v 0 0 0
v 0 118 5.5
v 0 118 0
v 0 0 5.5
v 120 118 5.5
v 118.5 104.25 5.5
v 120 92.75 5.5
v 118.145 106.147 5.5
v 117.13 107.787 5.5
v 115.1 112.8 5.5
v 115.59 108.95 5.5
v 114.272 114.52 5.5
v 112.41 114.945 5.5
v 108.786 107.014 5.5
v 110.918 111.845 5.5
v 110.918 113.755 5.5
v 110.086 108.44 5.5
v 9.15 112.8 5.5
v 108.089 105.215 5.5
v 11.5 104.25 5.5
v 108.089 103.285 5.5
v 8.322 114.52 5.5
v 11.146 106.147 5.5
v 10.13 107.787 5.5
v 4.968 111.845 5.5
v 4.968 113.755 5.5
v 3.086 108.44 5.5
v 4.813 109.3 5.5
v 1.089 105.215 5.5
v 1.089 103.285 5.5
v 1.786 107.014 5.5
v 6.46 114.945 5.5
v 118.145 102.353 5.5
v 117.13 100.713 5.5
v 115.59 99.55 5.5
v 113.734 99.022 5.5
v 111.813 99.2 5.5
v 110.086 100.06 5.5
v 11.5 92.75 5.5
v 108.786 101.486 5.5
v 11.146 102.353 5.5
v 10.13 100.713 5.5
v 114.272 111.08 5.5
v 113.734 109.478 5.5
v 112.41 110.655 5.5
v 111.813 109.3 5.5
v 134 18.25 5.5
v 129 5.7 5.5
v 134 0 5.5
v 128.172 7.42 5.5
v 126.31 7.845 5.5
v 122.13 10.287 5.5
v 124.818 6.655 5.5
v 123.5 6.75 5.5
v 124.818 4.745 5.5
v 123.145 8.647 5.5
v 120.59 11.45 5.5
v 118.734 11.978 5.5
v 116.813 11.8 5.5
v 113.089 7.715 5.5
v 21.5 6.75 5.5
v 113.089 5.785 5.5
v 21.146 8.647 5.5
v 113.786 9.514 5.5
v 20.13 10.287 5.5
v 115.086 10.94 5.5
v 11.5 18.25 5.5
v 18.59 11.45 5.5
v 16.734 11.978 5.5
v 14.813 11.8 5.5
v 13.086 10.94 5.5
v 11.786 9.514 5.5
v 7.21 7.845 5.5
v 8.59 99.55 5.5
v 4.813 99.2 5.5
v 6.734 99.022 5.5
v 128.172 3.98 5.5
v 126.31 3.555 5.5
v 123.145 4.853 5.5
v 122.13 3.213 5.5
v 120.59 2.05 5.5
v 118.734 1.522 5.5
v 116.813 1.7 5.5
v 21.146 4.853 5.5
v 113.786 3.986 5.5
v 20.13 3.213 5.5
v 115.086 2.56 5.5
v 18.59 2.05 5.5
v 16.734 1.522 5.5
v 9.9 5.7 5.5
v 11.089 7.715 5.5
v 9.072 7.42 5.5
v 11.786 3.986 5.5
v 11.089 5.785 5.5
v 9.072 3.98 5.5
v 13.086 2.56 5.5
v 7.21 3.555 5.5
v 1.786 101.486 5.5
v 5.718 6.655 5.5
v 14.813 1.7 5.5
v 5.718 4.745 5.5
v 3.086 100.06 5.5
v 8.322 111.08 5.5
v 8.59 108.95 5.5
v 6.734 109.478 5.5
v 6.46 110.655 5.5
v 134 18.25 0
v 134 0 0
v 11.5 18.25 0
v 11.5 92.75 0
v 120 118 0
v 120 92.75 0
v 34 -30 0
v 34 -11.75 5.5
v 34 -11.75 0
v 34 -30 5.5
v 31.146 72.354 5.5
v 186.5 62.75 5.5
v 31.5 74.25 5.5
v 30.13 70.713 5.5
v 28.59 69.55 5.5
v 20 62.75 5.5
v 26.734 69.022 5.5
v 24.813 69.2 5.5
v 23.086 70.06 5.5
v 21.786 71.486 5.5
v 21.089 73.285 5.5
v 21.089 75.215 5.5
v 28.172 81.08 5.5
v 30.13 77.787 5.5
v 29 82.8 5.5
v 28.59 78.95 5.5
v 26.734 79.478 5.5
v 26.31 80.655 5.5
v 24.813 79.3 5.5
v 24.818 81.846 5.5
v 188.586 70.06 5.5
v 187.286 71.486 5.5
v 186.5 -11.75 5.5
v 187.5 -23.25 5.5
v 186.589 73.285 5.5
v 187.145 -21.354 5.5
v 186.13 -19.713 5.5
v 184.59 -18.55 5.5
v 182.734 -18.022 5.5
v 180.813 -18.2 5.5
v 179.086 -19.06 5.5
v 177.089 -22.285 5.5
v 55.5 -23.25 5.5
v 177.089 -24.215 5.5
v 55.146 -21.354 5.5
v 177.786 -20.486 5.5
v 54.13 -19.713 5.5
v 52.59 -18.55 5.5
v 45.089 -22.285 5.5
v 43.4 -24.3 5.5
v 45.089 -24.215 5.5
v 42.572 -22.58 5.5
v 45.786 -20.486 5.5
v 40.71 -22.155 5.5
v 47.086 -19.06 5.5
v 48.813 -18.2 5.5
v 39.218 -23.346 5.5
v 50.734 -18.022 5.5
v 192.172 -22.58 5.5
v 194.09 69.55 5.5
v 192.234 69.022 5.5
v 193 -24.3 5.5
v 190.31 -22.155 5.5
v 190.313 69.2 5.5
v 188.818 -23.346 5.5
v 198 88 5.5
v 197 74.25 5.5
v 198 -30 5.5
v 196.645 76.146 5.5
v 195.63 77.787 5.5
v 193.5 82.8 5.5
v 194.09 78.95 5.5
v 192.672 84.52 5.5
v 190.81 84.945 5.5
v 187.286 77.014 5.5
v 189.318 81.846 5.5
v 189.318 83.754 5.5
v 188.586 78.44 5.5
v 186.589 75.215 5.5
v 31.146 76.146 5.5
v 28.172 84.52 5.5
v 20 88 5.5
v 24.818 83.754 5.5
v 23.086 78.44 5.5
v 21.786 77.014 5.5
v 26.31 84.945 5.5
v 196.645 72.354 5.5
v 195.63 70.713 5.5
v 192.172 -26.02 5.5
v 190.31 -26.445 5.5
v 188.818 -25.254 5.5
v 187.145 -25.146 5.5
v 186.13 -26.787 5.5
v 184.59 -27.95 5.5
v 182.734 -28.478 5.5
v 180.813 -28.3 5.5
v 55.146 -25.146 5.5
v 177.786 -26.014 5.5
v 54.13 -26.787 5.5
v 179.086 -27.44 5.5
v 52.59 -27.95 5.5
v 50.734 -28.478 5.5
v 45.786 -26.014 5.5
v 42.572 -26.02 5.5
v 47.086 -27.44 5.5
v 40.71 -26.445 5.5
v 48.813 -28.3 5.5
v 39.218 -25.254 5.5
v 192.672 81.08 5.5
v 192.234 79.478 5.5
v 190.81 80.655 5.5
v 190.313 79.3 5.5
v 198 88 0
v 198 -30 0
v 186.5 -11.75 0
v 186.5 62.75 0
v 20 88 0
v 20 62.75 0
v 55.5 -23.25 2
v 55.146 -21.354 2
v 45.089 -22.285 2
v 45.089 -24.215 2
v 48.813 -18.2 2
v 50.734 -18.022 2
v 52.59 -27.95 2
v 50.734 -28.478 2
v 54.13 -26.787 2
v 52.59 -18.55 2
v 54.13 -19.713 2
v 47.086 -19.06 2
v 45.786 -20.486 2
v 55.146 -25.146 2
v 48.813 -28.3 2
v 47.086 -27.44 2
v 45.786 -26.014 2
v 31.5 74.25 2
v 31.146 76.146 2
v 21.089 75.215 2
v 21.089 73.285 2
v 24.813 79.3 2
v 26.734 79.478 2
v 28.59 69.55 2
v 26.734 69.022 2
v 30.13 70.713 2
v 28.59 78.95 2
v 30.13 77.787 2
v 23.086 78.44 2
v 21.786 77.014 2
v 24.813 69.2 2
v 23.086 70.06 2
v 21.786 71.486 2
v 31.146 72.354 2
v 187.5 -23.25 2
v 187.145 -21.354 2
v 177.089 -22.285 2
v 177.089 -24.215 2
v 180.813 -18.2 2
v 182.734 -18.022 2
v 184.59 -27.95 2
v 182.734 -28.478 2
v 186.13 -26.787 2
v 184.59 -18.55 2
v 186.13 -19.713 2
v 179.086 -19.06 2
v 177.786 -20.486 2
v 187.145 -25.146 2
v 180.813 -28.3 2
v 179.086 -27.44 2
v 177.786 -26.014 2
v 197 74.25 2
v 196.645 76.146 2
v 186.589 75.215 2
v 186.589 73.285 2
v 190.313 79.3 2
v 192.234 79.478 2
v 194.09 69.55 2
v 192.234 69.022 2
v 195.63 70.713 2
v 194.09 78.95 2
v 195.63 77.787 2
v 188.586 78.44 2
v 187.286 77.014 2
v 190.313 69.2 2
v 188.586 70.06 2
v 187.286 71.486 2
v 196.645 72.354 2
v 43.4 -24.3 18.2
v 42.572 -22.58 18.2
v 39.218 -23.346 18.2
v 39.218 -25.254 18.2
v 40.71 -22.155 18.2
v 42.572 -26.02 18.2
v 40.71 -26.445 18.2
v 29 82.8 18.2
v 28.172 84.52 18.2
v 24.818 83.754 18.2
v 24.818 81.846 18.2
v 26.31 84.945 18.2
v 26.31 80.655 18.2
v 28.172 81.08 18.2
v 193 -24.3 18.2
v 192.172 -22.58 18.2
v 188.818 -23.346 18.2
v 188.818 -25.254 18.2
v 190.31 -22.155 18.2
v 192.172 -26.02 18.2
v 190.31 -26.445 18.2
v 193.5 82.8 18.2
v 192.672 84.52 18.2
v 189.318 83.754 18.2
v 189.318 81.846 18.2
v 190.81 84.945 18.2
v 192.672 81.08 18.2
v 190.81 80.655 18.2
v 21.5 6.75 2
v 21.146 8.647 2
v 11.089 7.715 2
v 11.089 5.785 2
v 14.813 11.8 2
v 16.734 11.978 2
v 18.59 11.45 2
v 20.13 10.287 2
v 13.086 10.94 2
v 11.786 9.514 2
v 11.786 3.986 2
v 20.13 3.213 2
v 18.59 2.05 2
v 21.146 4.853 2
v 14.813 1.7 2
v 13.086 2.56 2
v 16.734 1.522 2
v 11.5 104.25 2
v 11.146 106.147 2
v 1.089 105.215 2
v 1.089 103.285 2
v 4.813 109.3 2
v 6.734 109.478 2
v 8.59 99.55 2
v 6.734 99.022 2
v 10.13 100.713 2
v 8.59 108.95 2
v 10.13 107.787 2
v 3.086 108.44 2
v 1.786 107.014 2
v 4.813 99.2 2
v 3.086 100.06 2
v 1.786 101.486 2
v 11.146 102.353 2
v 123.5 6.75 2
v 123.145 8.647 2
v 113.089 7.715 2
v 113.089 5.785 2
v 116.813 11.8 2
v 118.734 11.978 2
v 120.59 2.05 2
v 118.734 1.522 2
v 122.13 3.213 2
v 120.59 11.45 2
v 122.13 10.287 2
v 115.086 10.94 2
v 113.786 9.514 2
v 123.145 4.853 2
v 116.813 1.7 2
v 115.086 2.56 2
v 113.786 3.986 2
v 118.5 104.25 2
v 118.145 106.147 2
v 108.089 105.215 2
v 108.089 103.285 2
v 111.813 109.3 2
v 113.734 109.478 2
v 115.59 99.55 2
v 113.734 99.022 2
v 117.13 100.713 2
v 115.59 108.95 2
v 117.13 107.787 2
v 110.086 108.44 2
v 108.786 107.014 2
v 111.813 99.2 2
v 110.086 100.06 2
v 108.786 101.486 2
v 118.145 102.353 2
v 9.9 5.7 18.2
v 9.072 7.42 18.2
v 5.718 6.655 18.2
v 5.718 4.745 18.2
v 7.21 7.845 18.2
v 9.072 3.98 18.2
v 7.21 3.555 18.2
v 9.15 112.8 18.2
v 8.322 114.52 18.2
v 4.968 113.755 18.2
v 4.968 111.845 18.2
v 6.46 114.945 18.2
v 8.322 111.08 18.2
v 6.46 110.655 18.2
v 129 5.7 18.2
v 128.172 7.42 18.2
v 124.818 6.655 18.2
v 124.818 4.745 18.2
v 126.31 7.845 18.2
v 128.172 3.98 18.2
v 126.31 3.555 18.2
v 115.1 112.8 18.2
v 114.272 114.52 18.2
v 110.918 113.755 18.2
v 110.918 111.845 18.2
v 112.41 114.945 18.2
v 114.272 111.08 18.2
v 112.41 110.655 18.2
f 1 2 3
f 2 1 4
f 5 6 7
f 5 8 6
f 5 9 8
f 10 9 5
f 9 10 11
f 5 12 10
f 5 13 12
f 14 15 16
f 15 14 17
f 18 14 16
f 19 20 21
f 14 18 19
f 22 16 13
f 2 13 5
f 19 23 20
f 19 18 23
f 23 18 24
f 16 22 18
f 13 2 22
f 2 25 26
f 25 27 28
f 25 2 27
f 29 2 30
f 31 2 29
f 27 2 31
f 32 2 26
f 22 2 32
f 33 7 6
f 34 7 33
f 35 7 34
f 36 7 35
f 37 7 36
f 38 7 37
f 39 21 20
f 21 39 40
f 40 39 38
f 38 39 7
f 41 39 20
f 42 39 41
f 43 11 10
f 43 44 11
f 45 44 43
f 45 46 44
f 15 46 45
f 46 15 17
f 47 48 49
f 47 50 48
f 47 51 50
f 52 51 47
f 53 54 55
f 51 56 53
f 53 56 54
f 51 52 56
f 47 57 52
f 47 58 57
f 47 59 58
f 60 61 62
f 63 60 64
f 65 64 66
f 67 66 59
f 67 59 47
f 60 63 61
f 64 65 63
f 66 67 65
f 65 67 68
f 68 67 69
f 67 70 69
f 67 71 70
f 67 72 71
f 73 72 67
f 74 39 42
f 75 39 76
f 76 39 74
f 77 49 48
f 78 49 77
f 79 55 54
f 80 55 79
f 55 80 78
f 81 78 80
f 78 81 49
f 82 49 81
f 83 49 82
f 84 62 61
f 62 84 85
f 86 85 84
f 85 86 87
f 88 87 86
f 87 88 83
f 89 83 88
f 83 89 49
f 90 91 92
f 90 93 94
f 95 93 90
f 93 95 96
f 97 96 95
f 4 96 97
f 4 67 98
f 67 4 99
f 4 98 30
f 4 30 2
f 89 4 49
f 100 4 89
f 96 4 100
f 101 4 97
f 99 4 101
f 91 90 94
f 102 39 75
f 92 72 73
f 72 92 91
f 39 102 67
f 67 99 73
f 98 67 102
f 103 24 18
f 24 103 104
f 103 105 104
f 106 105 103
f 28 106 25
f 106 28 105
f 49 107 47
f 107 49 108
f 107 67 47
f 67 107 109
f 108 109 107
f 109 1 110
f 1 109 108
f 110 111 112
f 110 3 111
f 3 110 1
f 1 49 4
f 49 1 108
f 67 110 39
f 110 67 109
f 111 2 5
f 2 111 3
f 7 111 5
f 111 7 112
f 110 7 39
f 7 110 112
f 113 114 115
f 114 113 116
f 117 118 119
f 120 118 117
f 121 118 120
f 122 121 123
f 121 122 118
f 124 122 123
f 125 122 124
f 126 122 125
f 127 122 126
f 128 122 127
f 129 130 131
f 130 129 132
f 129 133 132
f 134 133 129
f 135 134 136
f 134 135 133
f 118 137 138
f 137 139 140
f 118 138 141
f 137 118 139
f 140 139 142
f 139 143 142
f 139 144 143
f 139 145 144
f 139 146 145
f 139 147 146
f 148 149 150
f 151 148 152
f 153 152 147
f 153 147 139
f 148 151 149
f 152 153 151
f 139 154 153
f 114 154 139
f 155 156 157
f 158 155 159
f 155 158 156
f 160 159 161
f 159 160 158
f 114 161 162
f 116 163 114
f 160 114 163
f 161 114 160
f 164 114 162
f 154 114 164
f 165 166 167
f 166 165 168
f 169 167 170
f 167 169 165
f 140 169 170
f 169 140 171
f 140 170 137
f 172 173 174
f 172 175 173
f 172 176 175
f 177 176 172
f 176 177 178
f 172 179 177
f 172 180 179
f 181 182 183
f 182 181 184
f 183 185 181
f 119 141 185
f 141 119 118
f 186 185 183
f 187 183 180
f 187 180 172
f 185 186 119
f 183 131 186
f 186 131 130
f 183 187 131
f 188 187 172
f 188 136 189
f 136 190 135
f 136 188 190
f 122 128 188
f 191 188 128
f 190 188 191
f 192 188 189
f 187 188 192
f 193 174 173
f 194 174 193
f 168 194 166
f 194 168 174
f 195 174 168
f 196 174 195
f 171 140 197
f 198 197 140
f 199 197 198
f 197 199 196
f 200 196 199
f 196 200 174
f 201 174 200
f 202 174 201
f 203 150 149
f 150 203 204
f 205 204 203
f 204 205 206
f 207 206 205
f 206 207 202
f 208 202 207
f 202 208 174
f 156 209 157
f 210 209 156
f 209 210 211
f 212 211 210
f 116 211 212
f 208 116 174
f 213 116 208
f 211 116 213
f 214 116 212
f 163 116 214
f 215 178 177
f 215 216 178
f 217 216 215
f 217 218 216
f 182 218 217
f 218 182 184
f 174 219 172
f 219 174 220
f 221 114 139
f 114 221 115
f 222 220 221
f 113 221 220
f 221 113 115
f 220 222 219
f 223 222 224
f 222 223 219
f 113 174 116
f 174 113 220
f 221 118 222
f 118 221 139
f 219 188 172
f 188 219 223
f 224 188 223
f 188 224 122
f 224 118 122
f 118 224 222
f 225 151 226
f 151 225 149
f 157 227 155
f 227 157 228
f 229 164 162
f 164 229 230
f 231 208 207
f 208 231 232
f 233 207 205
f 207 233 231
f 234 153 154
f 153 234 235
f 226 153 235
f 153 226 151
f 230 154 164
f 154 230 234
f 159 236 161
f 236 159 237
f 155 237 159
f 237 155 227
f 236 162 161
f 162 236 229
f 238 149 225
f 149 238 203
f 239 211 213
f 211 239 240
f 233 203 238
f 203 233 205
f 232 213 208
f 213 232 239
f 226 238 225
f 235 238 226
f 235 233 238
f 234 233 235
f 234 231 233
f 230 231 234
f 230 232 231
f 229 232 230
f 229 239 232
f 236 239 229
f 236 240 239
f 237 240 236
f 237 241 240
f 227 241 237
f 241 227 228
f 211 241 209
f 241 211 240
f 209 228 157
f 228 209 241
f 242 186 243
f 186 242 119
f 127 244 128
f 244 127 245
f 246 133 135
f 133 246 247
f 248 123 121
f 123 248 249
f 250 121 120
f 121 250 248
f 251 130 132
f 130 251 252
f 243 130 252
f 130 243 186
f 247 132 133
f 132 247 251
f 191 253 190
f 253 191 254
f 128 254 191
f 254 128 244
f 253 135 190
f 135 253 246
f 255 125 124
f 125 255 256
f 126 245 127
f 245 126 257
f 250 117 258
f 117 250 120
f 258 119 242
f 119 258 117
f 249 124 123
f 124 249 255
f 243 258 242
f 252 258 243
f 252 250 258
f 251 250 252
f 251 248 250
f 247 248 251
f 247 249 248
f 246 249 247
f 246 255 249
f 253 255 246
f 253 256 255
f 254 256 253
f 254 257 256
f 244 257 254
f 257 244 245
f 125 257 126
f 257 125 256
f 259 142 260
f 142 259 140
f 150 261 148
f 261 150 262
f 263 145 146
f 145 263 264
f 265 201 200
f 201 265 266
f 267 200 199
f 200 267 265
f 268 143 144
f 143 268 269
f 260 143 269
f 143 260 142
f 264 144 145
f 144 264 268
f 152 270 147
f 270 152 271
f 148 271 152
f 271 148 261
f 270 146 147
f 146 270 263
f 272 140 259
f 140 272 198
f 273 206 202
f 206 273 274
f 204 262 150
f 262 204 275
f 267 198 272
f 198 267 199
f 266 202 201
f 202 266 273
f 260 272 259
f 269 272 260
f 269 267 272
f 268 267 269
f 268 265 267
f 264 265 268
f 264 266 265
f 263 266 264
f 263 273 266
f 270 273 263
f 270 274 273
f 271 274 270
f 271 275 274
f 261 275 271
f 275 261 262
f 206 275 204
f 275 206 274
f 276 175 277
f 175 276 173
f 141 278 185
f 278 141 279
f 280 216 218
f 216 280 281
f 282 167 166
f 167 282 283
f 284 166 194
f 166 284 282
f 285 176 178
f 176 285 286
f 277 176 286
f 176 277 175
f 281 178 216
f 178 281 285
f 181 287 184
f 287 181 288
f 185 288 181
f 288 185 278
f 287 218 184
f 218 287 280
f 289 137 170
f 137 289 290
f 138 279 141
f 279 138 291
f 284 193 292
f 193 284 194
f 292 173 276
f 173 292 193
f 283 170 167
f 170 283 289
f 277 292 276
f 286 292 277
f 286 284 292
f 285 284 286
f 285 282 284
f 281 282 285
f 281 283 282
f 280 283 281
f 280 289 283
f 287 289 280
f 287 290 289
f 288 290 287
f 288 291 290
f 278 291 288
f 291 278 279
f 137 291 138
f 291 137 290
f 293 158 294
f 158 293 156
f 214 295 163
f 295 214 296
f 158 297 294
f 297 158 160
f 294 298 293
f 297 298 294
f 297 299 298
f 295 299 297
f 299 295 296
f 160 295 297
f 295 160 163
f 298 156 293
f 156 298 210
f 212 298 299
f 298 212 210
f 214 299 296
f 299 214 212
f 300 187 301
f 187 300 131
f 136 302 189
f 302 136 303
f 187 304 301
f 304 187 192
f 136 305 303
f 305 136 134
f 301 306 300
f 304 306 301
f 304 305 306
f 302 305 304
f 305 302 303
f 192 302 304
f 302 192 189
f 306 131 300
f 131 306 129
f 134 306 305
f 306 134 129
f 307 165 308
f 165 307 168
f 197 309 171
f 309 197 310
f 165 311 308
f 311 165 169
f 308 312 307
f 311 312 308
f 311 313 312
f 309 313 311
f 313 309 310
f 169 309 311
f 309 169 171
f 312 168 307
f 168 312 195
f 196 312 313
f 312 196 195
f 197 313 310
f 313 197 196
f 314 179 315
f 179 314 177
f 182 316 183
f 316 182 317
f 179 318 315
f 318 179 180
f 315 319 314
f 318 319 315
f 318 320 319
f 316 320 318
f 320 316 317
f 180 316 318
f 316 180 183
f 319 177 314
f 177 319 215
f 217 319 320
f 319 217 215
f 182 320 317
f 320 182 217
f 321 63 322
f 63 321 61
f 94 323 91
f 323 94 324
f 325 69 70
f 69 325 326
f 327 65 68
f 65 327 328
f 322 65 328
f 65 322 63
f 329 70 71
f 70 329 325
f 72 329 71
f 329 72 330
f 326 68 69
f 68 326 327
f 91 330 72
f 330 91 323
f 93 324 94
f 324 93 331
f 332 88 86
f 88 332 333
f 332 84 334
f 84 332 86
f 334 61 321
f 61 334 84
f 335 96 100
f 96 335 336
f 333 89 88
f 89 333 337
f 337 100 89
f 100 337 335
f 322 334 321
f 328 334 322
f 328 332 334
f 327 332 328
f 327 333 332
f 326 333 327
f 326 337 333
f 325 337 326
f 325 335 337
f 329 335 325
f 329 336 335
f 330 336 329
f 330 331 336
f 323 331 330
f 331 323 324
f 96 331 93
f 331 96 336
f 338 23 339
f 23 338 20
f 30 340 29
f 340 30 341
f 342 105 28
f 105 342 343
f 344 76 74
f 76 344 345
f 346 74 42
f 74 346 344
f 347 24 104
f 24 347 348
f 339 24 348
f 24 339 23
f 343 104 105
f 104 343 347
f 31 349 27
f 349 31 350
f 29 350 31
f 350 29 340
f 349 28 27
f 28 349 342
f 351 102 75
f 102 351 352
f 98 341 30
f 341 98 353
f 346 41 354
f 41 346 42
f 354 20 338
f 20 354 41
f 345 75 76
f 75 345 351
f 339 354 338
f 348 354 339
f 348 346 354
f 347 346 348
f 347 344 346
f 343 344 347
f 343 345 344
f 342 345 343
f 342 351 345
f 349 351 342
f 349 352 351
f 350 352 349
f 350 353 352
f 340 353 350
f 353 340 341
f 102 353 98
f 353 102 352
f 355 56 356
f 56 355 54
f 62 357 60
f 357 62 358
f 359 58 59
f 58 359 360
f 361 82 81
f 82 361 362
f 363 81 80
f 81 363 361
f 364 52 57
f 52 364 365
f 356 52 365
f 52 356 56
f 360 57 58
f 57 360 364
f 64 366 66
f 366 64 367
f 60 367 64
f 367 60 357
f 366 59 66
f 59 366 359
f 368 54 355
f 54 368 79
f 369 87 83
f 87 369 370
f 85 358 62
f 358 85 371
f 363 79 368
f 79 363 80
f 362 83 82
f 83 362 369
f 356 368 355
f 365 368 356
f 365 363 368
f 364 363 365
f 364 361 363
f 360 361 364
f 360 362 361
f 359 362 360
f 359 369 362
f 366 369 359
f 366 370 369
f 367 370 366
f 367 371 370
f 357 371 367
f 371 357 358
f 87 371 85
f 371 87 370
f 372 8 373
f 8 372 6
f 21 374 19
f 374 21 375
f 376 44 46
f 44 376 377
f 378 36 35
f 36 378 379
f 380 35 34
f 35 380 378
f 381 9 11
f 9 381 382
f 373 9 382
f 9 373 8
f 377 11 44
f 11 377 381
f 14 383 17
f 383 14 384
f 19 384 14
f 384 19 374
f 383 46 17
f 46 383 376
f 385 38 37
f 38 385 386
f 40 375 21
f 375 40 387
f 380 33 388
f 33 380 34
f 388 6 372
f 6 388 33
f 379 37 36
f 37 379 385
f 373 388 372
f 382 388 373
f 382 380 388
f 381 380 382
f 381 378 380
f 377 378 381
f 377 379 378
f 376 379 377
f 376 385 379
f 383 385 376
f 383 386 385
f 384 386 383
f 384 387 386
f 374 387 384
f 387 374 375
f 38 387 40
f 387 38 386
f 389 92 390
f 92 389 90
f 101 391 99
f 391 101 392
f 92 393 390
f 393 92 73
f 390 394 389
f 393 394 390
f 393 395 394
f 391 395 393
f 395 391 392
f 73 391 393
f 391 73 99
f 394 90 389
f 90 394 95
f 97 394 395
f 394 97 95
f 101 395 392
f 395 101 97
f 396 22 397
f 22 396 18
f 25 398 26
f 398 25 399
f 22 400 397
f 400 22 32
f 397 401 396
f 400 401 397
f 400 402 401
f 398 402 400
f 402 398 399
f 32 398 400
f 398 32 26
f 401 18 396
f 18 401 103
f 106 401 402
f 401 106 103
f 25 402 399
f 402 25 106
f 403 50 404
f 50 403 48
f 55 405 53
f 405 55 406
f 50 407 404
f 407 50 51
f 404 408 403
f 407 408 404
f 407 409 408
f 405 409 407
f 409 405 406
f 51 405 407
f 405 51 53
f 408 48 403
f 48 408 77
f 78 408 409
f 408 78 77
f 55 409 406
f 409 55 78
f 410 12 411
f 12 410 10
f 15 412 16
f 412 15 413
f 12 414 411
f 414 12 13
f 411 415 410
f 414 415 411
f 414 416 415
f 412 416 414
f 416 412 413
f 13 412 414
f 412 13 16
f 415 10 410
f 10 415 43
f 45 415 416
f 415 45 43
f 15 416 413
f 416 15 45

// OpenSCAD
// file: measurements.scad
kb_w = 118;
kb_d1 = 18;
kb_d2 = 27;
kb_l_l1 = 120;
kb_l_l2 = 130;
kb_l_l3 = 134;
kb_l_l4 = 144;
kb_l_l5 = 134;
kb_w1 = 32;
kb_w2 = 19;
kb_w3 = 19;
kb_w4 = 19;
kb_w5 = 30;
kb_r_l1 = 178;
kb_r_l2 = 168;
kb_r_l3 = 164;
kb_r_l4 = 154;
kb_r_l5 = 164;

hole_dia = 5.4;
hole_r = hole_dia/2;
hole_d = 14.2;
foot_dia = 8.5;
foot_r = foot_dia/2;
foot_d = 2.5;
foot_d2 = 1.5;

holes_l = [
    [5+hole_r, 3+hole_r, 0],
    [4.25+hole_r, kb_w-2.5-hole_r, 0],
    [kb_l_l5-4.5-hole_r, 3+hole_r, 0],
    [kb_l_l1-4.4-hole_r, kb_w-2.5-hole_r, 0]
];
feet_l = [
    [12+foot_r, 2.5+foot_r, 0],
    [2+foot_r, kb_w-9.5-foot_r, 0],
    [kb_l_l5-11.5-foot_r, 2.5+foot_r, 0],
    [kb_l_l1-2.5-foot_r, kb_w-9.5-foot_r, 0]
];

holes_r = [
    [kb_r_l1-kb_r_l5+4.5+hole_r, 3+hole_r, 0],
    [4.1+hole_r, kb_w-2.5-hole_r, 0],
    [kb_r_l1-4.5-hole_r, 3+hole_r, 0],
    [kb_r_l1-4.0-hole_r, kb_w-2.5-hole_r, 0]
];
feet_r = [
    [kb_r_l1-kb_r_l5+12+foot_r, 2.5+foot_r, 0],
    [2+foot_r, kb_w-9.5-foot_r, 0],
    [kb_r_l1-11.5-foot_r, 2.5+foot_r, 0],
    [kb_r_l1-2-foot_r, kb_w-9.5-foot_r, 0]
];
// main file
include <measurements.scad>;

peg_fudge_r = 0.5;
peg_fudge_d = 1.5;
hole_fudge_r = 1;
hole_fudge_d = 1;
testfit_d = foot_d + hole_fudge_d + 2;
base_height = 50;

module peg() {
    cylinder(h=hole_d-peg_fudge_d, r=hole_r-peg_fudge_r);
}
module hole() {
    cylinder(h=2*(foot_d+hole_fudge_d), r=foot_r+hole_fudge_r, center=true);
}

module base_l(height) {
    difference() {
        union() {
            cube([kb_l_l5, feet_l[0][1]+foot_dia+3, height]);
            cube([foot_dia+3, kb_w, height]);
            piece1_w = kb_w-feet_l[1][1] + foot_dia + 3;
            translate([0, kb_w-piece1_w, 0]) cube([kb_l_l1, piece1_w, height]);
        }
        for (coord = feet_l)
            translate(coord) translate([0, 0, height]) hole();
    }
    for (coord = holes_l)
        translate(coord) translate([0, 0, height]) peg();
}
module testfit_l() { base_l(testfit_d); }
testfit_l();

module testfit_r() {
    difference() {
        union() {
            translate([kb_r_l1-kb_r_l5, 0, 0]) cube([kb_r_l5, feet_r[0][1]+foot_dia+3, testfit_d]);
            translate([kb_r_l1-foot_dia-3, 0, 0]) cube([foot_dia+3, kb_w, testfit_d]);
            piece1_w = kb_w-feet_r[1][1] + foot_dia + 3;
            translate([0, kb_w-piece1_w, 0]) cube([kb_r_l1, piece1_w, testfit_d]);
        }
        for (coord = feet_r)
            translate(coord) translate([0, 0, testfit_d]) hole();
    }
    for (coord = holes_r)
        translate(coord) translate([0, 0, testfit_d]) peg();
}
translate([20, -30, 0]) testfit_r();
